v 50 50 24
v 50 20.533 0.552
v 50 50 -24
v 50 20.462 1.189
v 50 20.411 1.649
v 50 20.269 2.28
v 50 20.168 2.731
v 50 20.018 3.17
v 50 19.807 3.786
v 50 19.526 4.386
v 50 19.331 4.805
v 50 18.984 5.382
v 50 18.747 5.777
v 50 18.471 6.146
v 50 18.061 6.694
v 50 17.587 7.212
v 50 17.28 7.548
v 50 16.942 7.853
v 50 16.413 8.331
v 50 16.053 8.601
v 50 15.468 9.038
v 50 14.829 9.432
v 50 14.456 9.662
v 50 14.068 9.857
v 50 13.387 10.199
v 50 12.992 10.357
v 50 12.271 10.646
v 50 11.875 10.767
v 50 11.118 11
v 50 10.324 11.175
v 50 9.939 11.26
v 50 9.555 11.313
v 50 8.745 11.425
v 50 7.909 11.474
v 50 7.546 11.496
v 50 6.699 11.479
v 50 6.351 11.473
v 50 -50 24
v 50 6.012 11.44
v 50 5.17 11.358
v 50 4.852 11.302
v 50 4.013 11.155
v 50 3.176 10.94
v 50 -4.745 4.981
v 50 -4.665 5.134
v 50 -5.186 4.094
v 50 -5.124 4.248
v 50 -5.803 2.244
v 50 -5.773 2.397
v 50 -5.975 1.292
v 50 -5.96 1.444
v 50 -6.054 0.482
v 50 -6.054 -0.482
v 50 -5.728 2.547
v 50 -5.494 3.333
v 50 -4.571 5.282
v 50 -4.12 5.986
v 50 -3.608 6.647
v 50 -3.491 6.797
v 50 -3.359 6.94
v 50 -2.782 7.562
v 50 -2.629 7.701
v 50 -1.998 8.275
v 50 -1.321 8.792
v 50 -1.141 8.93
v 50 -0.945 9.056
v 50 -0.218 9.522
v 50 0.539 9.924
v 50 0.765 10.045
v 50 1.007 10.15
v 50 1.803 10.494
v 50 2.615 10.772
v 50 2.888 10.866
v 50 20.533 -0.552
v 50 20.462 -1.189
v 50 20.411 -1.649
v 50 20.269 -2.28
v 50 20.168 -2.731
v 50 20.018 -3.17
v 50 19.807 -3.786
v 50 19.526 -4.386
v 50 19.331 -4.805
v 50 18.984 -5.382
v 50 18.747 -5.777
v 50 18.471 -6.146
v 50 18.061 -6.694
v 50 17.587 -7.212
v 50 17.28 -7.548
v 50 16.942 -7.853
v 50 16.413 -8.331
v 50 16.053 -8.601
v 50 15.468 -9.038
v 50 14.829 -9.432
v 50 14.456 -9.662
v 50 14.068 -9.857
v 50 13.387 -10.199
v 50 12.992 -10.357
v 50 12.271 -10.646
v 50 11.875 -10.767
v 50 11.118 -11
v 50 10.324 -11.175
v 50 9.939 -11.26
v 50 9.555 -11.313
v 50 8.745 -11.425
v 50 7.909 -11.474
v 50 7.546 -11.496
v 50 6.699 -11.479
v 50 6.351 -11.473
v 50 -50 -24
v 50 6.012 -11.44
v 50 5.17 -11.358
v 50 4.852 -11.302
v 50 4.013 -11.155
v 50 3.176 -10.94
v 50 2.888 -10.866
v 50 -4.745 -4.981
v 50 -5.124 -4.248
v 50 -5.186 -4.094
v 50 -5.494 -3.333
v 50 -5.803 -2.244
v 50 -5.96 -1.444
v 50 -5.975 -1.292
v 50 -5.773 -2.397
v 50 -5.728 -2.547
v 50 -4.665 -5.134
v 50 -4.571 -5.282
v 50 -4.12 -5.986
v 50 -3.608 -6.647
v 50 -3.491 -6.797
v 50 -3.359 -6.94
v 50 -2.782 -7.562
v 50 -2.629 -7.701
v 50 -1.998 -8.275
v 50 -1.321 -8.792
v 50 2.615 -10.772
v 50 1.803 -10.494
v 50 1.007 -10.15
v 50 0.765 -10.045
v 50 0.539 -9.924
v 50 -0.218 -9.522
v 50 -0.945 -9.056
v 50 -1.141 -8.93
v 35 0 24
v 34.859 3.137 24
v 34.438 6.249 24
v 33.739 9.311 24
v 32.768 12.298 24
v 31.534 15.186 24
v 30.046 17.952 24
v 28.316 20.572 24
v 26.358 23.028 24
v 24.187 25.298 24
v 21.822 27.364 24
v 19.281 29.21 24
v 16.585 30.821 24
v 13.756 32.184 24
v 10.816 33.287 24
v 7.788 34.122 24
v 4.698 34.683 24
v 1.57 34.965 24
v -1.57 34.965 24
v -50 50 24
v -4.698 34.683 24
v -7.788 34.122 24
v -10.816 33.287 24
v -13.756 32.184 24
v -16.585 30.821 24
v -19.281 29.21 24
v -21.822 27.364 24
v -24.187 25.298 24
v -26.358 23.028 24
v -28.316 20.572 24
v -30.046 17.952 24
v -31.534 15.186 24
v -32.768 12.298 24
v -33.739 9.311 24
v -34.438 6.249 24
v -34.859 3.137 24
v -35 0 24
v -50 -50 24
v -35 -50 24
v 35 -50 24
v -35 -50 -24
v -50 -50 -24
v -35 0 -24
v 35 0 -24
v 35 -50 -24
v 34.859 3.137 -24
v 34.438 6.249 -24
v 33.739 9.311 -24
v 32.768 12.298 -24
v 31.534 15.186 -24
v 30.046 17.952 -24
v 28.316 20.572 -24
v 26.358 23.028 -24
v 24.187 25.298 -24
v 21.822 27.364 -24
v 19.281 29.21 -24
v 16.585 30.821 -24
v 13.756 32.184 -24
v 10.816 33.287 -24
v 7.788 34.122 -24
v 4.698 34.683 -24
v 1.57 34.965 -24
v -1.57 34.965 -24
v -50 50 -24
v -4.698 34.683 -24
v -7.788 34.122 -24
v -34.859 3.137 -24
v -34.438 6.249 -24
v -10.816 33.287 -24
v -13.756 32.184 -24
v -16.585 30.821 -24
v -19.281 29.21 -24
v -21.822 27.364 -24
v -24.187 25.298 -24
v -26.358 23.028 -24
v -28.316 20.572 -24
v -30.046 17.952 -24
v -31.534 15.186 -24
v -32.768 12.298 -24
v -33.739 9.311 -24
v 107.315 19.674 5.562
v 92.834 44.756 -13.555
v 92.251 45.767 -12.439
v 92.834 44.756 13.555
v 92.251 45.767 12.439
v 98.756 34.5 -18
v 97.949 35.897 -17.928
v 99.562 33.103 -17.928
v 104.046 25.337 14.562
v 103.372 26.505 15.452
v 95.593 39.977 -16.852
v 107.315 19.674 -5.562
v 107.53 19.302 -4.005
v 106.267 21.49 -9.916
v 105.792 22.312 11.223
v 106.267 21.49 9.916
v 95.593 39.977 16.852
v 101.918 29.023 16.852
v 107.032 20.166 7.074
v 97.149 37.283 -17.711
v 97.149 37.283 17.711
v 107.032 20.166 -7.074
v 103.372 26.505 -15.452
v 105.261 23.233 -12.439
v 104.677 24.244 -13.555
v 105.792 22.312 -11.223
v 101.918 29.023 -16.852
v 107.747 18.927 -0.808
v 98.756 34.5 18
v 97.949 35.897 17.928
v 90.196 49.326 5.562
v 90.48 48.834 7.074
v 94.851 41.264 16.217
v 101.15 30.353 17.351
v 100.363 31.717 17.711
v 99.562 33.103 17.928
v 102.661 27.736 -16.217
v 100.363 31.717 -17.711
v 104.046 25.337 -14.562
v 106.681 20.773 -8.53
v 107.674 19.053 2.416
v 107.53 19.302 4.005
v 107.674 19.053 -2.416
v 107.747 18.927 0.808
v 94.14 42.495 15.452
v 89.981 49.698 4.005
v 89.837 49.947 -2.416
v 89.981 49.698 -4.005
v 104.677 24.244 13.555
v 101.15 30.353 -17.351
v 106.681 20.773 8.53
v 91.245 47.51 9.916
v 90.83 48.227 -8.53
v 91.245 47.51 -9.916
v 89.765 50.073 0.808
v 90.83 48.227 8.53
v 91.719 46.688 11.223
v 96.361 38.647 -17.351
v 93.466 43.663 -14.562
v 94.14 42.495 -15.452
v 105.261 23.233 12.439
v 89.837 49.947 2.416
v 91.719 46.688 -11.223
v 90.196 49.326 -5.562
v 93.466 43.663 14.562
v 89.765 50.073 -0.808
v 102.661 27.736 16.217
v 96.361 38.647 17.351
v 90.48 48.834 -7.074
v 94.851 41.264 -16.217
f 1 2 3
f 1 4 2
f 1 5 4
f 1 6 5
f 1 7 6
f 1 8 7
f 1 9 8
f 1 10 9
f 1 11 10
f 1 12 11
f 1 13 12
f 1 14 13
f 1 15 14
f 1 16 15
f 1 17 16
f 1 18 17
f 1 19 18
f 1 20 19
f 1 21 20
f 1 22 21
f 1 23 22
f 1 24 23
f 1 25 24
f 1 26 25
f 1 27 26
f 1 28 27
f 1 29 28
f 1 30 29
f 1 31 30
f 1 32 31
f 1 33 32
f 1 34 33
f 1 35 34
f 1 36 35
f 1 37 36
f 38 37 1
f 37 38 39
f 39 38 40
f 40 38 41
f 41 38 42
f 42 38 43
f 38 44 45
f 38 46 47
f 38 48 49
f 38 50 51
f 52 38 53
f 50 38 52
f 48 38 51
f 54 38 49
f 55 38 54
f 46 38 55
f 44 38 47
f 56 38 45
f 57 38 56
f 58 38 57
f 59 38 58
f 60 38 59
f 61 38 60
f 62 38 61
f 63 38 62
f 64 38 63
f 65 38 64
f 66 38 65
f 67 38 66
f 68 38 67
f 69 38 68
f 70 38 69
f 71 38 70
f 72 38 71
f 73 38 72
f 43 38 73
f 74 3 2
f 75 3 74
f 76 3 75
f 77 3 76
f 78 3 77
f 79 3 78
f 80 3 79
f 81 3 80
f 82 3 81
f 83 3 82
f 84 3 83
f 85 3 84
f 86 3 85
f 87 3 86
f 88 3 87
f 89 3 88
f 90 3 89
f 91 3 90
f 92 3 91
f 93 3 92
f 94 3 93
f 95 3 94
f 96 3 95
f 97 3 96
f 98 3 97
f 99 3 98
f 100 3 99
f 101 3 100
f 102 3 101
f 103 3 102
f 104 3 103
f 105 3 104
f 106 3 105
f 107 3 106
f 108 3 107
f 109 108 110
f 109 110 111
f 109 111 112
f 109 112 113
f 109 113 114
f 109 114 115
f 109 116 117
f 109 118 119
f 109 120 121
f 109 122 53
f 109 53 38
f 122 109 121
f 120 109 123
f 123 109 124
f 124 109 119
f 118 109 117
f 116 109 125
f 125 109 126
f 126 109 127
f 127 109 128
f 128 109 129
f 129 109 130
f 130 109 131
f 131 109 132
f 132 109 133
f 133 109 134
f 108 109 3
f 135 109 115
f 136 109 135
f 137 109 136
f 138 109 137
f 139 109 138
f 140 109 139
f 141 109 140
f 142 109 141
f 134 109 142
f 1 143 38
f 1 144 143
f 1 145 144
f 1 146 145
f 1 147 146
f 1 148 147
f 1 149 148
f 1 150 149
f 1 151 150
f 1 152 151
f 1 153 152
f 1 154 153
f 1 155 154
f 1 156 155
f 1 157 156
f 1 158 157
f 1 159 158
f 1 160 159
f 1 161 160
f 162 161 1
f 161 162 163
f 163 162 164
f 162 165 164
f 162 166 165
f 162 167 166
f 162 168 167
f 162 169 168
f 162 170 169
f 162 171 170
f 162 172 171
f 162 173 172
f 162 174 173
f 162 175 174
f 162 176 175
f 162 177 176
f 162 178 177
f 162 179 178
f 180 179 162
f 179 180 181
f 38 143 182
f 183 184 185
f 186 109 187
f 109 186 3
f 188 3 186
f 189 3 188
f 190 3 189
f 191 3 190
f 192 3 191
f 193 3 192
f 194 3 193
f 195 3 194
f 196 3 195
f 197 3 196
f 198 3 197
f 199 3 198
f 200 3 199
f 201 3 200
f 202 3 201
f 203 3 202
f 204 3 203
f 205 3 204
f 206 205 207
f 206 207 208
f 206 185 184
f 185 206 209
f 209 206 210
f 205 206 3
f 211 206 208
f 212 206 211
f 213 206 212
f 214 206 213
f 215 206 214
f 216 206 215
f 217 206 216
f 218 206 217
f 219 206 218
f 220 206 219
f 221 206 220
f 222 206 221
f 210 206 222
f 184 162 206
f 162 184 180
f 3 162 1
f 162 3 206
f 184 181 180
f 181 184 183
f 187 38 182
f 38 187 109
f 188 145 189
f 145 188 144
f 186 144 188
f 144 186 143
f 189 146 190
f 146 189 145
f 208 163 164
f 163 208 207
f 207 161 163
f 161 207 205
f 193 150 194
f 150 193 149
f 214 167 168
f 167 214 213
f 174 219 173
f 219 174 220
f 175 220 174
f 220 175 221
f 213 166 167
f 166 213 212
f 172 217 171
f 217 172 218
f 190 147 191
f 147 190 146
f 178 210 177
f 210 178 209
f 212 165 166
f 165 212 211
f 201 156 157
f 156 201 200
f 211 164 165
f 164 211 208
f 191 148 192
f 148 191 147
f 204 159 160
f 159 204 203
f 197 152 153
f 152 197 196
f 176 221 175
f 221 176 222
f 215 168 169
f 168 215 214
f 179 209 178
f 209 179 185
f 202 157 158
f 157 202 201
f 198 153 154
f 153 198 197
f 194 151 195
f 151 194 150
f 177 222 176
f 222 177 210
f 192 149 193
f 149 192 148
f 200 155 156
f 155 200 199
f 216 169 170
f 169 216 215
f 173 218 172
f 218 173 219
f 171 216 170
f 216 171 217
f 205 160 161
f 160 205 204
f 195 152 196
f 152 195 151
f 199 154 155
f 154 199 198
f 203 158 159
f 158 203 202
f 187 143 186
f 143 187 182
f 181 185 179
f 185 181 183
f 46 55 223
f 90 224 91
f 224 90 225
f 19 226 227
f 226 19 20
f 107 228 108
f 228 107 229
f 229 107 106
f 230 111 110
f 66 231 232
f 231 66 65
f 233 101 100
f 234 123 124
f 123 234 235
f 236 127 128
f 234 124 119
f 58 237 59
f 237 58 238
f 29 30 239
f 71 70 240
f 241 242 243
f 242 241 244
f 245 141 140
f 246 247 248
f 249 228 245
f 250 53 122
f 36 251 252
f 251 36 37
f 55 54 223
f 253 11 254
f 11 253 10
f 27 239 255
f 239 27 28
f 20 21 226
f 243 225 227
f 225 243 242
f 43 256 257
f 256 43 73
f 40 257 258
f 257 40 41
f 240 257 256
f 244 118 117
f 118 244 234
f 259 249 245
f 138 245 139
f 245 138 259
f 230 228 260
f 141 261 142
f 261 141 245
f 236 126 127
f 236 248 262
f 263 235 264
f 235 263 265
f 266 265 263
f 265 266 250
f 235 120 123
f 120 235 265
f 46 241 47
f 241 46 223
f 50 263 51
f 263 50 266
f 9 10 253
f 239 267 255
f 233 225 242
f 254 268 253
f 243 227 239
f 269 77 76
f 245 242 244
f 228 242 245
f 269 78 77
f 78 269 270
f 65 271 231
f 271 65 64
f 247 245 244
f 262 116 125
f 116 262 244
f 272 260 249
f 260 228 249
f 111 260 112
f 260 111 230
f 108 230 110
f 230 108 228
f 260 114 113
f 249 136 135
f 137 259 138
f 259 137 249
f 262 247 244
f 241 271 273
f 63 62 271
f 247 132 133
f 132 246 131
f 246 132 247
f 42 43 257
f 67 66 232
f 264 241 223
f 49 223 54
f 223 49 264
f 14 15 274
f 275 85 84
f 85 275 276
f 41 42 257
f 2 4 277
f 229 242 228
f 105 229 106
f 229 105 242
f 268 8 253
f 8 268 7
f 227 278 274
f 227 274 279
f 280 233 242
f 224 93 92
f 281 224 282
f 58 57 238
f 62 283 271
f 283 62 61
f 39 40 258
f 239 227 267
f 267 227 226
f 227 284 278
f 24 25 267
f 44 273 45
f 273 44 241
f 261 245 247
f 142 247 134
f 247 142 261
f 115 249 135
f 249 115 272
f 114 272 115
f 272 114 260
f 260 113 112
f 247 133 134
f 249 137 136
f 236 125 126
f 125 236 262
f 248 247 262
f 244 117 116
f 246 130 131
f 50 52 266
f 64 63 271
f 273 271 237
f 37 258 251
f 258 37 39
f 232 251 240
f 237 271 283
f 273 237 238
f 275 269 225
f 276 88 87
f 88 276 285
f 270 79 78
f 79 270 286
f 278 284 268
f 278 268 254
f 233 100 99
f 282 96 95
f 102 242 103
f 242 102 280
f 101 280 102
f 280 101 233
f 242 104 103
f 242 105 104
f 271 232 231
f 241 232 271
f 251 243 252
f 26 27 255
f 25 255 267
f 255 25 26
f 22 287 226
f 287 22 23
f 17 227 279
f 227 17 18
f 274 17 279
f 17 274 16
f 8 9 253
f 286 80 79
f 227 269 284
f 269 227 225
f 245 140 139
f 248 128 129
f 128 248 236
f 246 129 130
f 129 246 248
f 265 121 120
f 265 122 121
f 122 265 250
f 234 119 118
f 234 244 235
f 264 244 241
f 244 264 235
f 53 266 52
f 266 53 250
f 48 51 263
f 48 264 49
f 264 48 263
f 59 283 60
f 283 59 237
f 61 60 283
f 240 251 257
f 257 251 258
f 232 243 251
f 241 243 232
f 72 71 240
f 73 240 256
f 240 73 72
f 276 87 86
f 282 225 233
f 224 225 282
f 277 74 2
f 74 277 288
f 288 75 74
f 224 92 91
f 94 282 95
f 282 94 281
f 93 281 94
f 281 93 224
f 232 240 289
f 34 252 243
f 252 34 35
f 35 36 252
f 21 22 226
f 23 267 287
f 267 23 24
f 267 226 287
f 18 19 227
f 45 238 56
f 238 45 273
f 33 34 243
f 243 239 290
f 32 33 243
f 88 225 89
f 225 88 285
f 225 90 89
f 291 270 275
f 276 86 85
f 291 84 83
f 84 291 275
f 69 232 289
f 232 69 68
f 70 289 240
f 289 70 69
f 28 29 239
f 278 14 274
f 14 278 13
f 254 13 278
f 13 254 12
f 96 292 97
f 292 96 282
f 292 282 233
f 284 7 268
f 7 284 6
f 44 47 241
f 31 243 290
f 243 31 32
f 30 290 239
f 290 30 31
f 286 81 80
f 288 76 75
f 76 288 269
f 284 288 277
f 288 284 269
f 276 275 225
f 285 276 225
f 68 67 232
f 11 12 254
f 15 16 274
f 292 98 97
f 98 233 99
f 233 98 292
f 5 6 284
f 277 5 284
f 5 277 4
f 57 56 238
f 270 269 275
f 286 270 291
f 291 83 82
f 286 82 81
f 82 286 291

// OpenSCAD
//cube([35,35,35]);

$fn = 70;

difference() {
    cube([100,100,48], center=true);
    cylinder(50, r1=35,r2=35, center=true);
    translate([0,-35,0]) {
        cube([70,70,50], center=true);
    }
}
translate([39,0,0]) {
    rotate([0,90,30])
        cylinder(69, r1=10,r2=18);
}
